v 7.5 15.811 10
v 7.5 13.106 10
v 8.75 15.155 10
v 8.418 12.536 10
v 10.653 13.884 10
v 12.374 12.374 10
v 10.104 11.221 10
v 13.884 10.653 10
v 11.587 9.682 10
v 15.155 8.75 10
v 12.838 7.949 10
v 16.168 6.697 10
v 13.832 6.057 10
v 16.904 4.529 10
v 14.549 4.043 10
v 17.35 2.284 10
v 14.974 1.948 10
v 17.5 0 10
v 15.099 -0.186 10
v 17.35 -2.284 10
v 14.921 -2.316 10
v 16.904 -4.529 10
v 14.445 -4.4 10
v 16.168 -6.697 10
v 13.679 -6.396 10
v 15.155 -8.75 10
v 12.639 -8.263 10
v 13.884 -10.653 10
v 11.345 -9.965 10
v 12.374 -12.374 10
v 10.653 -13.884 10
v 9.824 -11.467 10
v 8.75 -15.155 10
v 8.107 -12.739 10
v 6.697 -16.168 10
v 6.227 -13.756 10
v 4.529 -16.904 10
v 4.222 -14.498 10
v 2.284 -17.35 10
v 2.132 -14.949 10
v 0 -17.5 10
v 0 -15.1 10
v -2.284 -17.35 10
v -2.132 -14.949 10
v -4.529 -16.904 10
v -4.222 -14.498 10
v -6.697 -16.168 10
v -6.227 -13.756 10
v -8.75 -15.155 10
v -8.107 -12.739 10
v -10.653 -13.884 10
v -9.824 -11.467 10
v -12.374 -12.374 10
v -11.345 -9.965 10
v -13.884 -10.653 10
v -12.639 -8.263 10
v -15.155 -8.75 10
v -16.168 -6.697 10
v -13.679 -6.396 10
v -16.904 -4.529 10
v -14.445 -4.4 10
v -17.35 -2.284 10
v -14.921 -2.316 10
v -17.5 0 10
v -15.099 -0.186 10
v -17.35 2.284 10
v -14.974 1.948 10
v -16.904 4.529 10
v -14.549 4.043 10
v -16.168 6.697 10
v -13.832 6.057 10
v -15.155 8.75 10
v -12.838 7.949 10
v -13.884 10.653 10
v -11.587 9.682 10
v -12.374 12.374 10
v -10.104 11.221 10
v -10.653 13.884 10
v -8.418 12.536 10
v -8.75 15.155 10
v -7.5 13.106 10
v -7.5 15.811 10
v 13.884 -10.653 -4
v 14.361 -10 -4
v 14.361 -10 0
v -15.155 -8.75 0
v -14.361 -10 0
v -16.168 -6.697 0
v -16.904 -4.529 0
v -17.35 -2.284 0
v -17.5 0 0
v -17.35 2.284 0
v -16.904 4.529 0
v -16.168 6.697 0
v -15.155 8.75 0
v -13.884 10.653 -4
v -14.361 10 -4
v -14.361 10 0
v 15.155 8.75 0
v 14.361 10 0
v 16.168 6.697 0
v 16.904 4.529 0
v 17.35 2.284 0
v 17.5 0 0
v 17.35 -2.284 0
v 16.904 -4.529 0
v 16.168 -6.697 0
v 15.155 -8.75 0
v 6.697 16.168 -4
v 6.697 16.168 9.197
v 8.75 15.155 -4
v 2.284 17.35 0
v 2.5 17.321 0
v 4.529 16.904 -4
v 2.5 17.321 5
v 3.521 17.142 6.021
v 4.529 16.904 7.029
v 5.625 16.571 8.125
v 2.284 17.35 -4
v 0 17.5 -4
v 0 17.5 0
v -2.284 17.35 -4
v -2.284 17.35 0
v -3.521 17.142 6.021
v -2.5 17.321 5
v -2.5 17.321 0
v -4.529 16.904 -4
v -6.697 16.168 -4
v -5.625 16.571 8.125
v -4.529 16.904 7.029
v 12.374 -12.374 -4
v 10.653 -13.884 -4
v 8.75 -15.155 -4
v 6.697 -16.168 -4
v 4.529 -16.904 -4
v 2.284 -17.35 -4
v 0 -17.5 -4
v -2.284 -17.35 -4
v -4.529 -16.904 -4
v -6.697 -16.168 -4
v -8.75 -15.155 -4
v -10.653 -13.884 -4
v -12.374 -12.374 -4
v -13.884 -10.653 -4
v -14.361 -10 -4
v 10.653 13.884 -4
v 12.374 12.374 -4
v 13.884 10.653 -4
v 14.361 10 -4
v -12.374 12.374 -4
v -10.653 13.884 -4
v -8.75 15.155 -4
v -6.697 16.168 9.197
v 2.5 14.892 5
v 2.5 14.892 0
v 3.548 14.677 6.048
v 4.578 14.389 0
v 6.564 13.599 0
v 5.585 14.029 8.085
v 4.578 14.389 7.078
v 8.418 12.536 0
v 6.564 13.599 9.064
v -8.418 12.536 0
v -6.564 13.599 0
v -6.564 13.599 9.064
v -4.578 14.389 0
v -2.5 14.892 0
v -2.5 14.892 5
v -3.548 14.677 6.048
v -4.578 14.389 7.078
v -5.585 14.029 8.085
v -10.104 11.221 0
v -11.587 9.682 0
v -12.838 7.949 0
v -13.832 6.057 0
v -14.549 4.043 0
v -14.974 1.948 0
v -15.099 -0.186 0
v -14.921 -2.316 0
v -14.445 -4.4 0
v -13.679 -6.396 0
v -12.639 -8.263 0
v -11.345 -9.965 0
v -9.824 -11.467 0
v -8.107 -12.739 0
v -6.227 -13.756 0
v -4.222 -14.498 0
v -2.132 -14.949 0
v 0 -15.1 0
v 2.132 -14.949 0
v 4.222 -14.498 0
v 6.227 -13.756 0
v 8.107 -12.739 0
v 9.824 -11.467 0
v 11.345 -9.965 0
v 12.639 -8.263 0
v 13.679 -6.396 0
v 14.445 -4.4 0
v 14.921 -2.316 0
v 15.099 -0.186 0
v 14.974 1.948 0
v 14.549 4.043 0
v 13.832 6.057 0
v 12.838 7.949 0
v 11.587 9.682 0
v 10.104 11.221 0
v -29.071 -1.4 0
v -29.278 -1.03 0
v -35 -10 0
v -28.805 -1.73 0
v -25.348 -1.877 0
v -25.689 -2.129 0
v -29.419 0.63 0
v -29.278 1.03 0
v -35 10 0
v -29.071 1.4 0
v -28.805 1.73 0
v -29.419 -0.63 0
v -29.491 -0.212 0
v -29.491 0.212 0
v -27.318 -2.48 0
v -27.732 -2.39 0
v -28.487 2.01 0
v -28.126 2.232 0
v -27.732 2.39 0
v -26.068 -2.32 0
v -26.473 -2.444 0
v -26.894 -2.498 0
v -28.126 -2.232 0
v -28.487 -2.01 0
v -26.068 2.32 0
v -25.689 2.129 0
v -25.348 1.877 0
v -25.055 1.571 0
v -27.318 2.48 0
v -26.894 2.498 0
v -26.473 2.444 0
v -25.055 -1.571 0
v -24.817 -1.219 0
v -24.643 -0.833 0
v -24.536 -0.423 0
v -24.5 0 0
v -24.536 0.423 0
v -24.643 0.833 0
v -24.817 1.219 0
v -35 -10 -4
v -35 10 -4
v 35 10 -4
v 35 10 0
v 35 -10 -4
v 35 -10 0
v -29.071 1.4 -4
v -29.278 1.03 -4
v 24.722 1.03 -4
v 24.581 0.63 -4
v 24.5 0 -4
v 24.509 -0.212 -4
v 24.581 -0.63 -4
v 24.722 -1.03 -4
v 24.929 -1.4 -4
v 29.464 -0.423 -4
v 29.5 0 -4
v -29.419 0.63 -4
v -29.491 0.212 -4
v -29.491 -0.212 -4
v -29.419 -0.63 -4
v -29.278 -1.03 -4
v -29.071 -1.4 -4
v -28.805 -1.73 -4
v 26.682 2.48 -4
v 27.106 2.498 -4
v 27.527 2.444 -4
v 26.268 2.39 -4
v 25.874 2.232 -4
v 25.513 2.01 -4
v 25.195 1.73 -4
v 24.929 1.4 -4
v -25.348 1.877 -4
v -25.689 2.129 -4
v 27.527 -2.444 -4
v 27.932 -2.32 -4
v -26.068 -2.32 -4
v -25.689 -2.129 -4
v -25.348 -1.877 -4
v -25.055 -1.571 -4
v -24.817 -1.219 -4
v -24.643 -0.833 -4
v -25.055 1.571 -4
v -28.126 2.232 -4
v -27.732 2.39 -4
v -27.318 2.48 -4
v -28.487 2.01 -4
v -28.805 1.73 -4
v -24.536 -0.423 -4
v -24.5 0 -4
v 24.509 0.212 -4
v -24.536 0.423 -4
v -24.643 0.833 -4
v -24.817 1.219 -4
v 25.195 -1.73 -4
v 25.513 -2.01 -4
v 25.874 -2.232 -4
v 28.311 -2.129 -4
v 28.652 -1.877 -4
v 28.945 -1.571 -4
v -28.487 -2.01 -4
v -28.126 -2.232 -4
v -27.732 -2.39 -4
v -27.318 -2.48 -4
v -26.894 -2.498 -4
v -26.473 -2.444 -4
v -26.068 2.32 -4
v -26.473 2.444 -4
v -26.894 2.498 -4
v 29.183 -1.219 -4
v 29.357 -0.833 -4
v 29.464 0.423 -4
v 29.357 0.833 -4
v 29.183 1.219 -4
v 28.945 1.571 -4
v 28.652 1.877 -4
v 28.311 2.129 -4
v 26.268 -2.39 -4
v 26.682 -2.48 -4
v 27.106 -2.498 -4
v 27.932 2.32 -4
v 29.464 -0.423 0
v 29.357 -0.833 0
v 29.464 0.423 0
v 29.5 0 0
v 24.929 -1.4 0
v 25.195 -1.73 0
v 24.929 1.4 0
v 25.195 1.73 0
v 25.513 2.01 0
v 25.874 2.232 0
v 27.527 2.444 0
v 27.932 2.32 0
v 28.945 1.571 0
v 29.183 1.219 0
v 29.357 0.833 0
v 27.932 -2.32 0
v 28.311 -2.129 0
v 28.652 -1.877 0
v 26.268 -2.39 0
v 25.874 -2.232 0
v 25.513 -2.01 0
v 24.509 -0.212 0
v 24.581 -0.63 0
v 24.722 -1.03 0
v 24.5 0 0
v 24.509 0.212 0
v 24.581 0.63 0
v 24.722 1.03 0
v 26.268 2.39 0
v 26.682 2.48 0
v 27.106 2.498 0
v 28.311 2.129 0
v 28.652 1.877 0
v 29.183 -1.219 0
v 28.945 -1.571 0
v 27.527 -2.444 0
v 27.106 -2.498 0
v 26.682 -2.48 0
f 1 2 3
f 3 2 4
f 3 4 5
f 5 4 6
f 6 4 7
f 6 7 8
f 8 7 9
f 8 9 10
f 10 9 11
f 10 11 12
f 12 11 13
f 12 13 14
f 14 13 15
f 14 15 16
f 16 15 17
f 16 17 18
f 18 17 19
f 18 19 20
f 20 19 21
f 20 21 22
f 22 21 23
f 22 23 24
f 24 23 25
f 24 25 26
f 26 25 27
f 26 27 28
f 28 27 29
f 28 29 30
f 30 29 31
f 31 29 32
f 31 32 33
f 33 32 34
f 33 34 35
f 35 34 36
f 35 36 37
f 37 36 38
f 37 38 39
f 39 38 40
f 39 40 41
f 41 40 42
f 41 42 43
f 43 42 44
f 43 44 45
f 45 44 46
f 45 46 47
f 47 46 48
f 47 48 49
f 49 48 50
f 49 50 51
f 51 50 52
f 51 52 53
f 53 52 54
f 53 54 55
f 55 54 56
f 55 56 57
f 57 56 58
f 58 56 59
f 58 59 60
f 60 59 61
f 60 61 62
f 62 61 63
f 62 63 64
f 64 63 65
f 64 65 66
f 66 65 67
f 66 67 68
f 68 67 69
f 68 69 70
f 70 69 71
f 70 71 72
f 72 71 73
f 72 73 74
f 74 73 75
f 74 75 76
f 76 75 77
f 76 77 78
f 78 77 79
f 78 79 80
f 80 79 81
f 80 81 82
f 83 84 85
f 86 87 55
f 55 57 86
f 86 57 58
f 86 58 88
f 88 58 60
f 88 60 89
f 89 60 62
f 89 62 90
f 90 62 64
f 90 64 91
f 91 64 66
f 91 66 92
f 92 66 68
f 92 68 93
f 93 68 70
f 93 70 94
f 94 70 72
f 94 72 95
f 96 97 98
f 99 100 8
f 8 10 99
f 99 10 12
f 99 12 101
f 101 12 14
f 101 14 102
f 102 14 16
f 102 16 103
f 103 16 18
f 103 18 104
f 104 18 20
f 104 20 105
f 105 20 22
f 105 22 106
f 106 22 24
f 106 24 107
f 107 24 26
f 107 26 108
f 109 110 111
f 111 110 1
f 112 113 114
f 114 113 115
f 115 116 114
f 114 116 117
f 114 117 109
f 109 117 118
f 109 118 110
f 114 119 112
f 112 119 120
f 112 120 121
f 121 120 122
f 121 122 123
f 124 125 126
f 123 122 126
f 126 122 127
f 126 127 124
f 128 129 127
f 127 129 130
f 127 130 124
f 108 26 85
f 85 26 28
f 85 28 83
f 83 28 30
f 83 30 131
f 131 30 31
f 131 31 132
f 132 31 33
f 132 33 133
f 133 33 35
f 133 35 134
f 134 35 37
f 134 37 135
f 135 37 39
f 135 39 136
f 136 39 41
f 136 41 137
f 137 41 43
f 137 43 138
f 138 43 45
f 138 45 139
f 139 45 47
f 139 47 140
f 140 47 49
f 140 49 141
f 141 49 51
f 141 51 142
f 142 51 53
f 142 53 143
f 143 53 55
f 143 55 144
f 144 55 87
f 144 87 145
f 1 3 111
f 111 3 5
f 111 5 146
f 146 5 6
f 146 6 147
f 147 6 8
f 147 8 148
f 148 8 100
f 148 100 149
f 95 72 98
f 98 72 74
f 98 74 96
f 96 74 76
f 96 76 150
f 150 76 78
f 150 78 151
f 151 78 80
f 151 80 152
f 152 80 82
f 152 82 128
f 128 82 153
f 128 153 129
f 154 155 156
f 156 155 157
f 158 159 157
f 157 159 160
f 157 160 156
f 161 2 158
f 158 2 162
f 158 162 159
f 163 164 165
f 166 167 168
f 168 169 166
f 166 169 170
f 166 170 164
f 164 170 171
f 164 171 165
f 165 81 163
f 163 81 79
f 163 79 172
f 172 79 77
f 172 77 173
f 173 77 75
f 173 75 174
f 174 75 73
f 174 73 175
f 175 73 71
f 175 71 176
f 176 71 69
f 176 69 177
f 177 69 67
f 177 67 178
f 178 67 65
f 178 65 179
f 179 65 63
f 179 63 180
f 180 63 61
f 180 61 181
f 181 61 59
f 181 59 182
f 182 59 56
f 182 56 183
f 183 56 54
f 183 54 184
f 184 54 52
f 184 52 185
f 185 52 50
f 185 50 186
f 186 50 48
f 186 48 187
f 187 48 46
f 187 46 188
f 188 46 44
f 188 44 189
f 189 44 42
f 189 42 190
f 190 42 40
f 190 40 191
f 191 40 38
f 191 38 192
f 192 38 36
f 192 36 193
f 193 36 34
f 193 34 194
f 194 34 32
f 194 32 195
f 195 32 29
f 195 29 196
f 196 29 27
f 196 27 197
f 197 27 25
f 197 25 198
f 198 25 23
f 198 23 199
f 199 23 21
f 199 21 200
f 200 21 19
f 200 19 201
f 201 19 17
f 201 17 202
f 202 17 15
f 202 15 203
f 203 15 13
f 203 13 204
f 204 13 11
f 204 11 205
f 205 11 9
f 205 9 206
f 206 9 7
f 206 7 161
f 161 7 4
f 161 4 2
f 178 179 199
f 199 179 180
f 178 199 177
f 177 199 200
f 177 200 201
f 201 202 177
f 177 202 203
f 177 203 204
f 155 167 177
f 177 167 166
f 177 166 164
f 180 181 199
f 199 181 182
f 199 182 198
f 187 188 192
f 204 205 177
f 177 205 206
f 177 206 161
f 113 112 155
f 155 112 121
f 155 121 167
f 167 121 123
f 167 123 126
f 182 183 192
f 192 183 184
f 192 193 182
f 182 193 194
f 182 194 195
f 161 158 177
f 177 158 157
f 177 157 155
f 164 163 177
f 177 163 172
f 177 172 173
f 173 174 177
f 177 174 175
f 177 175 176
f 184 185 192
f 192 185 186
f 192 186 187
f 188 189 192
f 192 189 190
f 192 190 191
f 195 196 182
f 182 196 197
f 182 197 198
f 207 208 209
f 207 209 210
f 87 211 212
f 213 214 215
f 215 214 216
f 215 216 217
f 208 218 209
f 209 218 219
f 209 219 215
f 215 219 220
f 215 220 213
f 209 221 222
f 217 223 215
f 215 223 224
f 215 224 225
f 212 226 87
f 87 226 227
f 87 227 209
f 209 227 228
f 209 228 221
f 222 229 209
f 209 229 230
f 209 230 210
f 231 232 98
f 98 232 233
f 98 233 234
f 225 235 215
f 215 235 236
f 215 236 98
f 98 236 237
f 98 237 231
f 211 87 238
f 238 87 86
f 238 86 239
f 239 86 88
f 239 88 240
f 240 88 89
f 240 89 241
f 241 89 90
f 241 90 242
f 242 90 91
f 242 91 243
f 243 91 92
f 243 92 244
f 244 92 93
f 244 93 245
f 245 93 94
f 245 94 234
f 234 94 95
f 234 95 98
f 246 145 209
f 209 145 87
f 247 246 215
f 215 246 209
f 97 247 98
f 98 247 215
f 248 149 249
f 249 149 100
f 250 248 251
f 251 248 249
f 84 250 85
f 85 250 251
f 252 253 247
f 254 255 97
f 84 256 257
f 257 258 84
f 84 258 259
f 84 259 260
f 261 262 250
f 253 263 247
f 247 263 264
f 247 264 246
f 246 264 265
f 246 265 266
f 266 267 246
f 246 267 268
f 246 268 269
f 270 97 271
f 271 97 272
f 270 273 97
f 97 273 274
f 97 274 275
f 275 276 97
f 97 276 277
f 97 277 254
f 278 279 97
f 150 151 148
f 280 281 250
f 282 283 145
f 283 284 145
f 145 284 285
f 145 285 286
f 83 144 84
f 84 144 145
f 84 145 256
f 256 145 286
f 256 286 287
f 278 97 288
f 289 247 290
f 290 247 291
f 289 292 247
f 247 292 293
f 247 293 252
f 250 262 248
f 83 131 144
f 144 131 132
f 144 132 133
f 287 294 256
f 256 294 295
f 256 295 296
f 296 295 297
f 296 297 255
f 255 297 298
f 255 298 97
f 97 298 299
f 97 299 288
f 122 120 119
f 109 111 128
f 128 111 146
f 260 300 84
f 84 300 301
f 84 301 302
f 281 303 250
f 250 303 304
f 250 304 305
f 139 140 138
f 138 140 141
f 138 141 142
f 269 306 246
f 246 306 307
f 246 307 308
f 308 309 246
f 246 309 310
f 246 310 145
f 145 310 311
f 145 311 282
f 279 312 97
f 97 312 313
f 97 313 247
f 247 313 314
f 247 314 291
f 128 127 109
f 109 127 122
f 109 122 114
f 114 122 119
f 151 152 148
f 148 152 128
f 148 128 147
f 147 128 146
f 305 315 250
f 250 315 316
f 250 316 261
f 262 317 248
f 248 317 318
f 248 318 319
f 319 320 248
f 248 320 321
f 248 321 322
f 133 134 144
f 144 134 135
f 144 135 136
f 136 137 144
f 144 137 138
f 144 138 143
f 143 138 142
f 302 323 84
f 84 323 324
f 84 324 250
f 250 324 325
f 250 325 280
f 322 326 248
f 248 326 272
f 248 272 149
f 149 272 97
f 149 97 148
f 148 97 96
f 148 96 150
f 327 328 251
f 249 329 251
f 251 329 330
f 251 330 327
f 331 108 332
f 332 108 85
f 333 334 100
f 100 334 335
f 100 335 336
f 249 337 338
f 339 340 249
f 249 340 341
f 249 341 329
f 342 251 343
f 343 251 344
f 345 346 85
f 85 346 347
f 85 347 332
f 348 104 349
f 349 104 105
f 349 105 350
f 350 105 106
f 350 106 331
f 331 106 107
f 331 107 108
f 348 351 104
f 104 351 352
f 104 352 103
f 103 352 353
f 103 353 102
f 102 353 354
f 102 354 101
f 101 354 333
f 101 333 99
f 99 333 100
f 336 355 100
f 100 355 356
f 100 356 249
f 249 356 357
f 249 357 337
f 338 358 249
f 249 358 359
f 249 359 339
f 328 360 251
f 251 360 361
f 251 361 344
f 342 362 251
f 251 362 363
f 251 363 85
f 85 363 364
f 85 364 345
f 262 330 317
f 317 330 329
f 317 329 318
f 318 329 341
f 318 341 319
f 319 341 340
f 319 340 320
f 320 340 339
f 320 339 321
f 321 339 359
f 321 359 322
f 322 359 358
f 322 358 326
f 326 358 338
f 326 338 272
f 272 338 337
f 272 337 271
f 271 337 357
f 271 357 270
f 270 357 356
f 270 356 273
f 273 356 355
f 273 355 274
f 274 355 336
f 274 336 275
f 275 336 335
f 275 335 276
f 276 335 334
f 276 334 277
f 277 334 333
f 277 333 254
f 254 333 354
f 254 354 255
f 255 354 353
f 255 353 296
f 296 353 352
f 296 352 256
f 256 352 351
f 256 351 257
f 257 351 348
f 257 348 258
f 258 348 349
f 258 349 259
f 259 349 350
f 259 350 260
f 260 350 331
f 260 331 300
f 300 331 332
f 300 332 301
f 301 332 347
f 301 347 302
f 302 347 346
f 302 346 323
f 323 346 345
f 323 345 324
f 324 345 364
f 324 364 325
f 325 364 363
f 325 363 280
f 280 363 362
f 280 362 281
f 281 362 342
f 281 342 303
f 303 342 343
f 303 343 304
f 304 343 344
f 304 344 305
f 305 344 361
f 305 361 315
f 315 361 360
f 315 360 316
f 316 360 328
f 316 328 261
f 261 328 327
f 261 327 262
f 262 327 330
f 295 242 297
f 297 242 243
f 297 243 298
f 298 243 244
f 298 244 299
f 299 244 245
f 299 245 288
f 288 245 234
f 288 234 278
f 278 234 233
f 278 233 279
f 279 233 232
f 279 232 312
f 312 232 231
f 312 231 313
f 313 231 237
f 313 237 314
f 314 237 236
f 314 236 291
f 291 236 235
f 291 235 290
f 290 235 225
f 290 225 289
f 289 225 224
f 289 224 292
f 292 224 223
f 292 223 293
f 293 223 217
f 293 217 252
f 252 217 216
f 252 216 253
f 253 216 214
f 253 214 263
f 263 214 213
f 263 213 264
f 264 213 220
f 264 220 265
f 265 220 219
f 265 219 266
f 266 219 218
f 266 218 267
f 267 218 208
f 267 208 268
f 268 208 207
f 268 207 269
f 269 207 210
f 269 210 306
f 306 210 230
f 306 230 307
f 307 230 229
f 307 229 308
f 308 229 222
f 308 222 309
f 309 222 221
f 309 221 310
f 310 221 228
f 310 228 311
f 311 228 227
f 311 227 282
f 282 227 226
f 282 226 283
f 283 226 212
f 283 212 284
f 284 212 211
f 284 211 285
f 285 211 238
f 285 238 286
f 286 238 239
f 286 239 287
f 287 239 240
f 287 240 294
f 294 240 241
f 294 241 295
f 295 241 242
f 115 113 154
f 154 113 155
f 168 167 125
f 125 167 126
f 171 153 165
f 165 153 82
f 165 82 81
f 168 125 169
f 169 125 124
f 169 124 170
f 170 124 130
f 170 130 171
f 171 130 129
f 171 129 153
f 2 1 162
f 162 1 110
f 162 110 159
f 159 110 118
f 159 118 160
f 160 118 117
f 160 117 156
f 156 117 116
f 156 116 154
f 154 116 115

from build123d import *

# Parameters (mm, degrees)
SKETCH1_R           = 17.5
SKETCH1_R_2         = 15.1
BOSS_EXTRUDE1_DEPTH = 10
BOSS_EXTRUDE2_DEPTH = 4
SKETCH3_R           = 2.5
CUT_EXTRUDE1_DEPTH  = 4
SKETCH4_W           = 5
SKETCH4_H           = 8
CUT_EXTRUDE2_DEPTH  = 10
CHAMFER1_SIZE       = 5


with BuildPart() as part:
    # Sketch1 → Boss-Extrude1 (new body)
    with BuildSketch(Plane.XY):
        Circle(SKETCH1_R)
        Circle(SKETCH1_R_2, mode=Mode.SUBTRACT)
    extrude(amount=BOSS_EXTRUDE1_DEPTH)

    # Sketch2 → Boss-Extrude2 (add)
    with BuildSketch(Plane(origin=(0, 0, 0), x_dir=(-1, 0, 0), z_dir=(0, 0, -1))):
        with BuildLine():
            Line((14.361406616, 10), (35, 10))
            Line((35, 10), (35, -10))
            Line((35, -10), (14.361406616, -10))
            ThreePointArc((14.361406616, -10), (0, -17.5), (-14.361406616, -10))
            Line((-14.361406616, -10), (-35, -10))
            Line((-35, -10), (-35, 10))
            Line((-35, 10), (-14.361406616, 10))
            ThreePointArc((-14.361406616, 10), (0, 17.5), (14.361406616, 10))
        make_face()
    extrude(amount=BOSS_EXTRUDE2_DEPTH)

    # Sketch3 → Cut-Extrude1 (cut)
    with BuildSketch(Plane.XY):
        with Locations((-27, 0)):
            Circle(SKETCH3_R)
        with Locations((27, 0)):
            Circle(SKETCH3_R)
    extrude(amount=-CUT_EXTRUDE1_DEPTH, mode=Mode.SUBTRACT)

    # Sketch4 → Cut-Extrude2 (cut)
    with BuildSketch(Plane.XY.offset(10)):
        with Locations((0, 15.1)):
            Rectangle(SKETCH4_W, SKETCH4_H)
    extrude(amount=-CUT_EXTRUDE2_DEPTH, mode=Mode.SUBTRACT)

    # Chamfer1
    chamfer1_edges = [part.edges().sort_by_distance(p)[0] for p in [
        (2.5, 16.106058225, 10),
        (-2.5, 16.106058225, 10),
    ]]
    chamfer(chamfer1_edges, length=CHAMFER1_SIZE)


solid = part.part
